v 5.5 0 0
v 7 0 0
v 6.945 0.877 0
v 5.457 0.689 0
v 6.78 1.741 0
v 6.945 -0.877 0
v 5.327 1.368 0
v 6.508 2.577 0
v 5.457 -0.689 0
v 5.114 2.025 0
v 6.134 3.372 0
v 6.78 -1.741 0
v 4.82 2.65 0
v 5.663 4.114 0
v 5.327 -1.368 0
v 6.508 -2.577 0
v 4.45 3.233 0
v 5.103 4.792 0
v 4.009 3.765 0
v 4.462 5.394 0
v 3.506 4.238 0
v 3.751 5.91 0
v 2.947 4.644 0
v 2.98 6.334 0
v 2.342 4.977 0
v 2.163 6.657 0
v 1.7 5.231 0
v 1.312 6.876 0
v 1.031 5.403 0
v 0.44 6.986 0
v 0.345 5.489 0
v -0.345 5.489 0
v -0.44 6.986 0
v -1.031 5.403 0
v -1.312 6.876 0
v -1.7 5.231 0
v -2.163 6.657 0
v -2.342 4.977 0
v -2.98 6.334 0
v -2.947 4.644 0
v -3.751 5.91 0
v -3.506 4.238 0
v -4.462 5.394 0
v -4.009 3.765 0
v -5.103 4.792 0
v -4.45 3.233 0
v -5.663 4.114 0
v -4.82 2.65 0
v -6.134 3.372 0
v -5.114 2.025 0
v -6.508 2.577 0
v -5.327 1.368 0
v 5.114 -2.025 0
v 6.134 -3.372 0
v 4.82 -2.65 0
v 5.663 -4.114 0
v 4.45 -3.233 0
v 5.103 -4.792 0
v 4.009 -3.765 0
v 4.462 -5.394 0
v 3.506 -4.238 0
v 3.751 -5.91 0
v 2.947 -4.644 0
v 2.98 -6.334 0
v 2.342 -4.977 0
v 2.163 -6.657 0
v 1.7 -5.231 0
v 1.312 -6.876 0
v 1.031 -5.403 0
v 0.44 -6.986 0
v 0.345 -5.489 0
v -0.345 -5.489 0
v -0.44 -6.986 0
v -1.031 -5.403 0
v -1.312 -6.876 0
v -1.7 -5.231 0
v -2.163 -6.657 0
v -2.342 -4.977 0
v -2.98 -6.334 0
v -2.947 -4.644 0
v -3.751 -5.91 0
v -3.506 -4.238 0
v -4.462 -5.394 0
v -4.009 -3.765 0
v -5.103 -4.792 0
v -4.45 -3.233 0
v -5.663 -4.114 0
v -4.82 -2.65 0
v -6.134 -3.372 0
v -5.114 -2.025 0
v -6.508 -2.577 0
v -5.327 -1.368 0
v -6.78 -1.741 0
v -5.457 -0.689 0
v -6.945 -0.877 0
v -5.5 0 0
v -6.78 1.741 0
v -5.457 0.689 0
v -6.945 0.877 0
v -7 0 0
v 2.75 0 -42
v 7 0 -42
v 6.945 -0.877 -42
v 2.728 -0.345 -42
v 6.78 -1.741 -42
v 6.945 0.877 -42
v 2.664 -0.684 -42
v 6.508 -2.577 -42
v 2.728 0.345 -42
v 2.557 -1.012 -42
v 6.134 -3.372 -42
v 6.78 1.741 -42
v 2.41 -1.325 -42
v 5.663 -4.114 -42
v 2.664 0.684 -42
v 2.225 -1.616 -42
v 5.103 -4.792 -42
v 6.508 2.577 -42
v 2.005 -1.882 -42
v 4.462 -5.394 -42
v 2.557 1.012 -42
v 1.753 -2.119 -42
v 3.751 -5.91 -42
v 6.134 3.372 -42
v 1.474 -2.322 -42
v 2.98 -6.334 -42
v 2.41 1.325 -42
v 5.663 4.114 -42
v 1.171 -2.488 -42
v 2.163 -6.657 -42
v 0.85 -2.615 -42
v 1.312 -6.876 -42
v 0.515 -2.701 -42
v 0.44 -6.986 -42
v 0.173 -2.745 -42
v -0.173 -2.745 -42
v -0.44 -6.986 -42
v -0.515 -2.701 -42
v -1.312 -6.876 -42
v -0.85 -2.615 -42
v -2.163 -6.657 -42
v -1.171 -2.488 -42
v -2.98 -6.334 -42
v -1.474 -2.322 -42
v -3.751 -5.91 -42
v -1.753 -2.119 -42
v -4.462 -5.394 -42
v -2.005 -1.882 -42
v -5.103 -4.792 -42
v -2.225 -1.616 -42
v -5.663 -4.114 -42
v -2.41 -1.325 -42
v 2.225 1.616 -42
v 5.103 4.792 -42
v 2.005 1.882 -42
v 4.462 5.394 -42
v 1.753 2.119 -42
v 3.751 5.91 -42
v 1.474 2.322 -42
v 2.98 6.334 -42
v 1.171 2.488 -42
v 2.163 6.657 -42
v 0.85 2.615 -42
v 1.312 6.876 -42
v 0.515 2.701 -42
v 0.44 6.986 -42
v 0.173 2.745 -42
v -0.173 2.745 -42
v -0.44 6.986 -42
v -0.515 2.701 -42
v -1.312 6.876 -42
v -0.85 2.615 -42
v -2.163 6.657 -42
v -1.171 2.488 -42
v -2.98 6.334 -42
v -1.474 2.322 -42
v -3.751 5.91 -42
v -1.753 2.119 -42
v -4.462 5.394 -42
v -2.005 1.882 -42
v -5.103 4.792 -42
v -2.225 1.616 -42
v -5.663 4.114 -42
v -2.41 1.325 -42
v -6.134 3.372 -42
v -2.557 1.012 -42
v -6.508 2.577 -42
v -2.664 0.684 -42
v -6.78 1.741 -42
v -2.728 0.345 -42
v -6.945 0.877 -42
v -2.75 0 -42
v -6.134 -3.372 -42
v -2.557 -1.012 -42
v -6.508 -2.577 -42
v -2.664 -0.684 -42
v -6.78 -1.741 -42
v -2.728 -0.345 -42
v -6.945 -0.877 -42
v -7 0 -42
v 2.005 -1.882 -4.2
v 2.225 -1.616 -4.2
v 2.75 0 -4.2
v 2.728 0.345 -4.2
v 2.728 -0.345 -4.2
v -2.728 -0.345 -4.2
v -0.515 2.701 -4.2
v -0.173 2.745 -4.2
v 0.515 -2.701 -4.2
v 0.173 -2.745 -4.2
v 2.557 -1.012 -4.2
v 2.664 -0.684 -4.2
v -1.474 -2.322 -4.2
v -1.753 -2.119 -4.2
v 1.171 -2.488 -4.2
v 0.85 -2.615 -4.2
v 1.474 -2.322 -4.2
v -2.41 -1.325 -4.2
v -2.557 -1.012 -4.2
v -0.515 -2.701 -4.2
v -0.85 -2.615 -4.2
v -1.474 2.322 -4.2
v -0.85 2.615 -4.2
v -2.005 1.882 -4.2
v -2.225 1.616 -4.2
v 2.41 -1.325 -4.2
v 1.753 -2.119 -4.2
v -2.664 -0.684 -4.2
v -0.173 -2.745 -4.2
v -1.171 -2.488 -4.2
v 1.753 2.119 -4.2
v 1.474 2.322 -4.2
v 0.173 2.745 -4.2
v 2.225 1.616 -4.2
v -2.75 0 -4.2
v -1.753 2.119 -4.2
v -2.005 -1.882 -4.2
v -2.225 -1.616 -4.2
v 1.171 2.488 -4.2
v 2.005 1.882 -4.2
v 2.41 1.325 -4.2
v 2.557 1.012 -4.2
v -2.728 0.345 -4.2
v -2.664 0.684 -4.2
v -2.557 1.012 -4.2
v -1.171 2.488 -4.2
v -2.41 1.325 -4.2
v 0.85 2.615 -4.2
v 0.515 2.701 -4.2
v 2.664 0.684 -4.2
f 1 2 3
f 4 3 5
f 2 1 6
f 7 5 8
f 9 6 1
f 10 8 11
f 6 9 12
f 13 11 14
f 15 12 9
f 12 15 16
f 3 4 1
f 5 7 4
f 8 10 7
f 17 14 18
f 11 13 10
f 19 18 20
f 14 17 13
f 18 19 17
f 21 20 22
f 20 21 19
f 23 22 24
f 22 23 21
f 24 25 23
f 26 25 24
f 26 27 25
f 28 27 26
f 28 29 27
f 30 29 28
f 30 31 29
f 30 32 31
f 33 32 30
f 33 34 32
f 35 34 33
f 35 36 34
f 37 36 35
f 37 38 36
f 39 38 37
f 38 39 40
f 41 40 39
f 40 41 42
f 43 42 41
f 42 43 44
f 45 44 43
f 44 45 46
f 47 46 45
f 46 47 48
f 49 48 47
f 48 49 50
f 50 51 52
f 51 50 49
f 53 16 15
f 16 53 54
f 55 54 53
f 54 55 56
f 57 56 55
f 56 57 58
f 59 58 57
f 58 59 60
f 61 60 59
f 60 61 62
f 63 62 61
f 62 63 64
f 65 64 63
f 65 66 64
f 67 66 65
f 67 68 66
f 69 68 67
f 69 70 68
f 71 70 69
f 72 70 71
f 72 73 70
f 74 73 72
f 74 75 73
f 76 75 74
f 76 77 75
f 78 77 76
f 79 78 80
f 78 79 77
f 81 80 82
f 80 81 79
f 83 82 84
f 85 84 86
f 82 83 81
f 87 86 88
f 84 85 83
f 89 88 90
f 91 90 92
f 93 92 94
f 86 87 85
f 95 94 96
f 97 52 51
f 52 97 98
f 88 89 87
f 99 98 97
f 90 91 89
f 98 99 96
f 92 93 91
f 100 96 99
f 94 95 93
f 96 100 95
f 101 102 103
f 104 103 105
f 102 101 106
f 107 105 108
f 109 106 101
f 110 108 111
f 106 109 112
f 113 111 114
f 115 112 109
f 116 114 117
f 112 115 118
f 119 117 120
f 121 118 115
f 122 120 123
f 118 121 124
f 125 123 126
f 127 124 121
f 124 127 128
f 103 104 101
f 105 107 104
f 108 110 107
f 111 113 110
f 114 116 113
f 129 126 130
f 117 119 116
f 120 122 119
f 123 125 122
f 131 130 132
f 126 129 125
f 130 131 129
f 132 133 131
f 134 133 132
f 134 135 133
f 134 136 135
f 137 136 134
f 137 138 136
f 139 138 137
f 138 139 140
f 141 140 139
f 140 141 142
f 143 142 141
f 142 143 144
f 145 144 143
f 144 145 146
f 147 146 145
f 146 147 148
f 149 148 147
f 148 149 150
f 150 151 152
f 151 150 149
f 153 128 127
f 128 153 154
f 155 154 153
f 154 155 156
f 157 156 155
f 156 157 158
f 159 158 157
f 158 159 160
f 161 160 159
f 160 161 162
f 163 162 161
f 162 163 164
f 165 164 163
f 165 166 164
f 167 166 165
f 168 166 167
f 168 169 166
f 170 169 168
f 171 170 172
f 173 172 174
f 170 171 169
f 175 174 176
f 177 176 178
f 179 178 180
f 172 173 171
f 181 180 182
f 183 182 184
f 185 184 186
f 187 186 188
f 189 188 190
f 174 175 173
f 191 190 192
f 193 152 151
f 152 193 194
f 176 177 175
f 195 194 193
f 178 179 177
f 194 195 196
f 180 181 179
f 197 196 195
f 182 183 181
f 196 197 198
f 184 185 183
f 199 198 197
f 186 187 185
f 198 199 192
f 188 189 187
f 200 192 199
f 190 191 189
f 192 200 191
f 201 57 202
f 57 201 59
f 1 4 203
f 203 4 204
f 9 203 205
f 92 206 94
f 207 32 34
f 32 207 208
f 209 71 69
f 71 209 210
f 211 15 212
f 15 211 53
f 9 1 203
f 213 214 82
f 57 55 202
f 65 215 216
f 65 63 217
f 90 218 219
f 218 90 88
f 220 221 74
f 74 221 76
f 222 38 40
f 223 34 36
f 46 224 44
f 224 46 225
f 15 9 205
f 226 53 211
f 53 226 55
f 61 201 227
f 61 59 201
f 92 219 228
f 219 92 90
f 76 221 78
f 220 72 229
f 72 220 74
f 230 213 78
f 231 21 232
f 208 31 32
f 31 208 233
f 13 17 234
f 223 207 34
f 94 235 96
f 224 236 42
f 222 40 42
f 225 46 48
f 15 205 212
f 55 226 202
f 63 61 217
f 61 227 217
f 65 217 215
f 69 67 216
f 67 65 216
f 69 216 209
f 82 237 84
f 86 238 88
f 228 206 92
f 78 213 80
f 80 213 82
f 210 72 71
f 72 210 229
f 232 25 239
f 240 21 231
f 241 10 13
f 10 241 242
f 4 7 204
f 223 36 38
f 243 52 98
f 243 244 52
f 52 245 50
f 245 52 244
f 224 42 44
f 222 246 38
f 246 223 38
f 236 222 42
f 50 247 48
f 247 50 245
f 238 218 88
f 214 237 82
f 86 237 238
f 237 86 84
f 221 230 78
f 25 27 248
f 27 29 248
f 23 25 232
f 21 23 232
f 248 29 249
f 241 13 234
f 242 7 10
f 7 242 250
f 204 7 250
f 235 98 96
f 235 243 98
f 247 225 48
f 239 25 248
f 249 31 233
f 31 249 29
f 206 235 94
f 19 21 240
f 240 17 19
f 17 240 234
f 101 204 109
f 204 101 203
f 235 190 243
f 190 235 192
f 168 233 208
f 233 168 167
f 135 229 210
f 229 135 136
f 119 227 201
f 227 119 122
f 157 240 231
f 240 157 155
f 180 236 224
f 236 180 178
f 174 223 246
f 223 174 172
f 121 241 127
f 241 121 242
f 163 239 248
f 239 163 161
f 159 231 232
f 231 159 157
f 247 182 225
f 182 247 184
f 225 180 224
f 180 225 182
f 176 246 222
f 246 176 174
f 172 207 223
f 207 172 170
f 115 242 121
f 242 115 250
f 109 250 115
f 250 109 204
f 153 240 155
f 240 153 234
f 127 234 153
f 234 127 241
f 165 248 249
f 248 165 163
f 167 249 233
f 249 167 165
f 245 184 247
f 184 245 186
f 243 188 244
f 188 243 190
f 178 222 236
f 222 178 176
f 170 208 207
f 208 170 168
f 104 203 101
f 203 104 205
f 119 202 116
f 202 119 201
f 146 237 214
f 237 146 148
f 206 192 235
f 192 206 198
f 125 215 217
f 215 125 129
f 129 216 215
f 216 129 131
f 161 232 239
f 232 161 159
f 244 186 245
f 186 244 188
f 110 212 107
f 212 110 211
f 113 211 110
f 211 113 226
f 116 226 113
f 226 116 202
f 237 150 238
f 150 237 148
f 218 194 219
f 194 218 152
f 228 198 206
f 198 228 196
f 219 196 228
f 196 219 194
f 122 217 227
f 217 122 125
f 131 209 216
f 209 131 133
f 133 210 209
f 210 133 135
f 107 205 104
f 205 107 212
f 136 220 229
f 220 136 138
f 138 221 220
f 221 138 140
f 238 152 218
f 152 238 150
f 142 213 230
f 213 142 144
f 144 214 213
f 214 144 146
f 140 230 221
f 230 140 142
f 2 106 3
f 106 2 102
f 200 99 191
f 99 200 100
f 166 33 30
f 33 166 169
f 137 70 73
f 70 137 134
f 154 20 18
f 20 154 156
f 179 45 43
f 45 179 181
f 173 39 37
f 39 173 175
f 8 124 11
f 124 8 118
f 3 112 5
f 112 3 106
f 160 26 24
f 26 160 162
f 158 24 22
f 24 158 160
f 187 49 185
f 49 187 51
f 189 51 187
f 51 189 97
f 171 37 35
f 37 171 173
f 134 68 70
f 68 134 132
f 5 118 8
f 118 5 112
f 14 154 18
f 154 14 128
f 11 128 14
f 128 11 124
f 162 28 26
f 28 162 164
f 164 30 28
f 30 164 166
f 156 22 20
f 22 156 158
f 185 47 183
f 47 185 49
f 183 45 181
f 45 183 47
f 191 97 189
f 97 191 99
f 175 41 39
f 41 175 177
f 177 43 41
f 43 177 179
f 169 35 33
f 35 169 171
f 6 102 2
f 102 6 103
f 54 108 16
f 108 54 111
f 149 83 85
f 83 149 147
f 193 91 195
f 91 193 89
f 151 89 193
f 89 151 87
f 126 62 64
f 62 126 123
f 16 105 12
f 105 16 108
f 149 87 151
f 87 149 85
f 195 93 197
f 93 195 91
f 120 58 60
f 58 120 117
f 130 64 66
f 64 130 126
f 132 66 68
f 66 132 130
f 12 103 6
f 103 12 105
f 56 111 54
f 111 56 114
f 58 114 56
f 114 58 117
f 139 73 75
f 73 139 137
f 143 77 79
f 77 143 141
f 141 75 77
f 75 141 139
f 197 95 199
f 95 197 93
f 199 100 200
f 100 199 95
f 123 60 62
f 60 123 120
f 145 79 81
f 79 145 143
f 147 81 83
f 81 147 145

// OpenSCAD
$fn = 50;


difference() {
	union() {
		translate(v = [0, 0, -42.0000000000]) {
			cylinder(h = 42, r = 7.0000000000);
		}
		cylinder(h = 0, r = 10.0000000000);
	}
	union() {
		translate(v = [0, 0, 0]) {
			rotate(a = [0, 0, 0]) {
				difference() {
					union() {
						#translate(v = [0, 0, -42.0000000000]) {
							cylinder(h = 42, r = 2.2500000000);
						}
						#translate(v = [0, 0, -4.2000000000]) {
							cylinder(h = 4.2000000000, r = 7.0000000000, r1 = 2.7500000000, r2 = 5.5000000000);
						}
						#translate(v = [0, 0, -42.0000000000]) {
							cylinder(h = 42, r = 2.7500000000);
						}
						#translate(v = [0, 0, -42.0000000000]) {
							cylinder(h = 42, r = 2.2500000000);
						}
					}
					union();
				}
			}
		}
	}
}
